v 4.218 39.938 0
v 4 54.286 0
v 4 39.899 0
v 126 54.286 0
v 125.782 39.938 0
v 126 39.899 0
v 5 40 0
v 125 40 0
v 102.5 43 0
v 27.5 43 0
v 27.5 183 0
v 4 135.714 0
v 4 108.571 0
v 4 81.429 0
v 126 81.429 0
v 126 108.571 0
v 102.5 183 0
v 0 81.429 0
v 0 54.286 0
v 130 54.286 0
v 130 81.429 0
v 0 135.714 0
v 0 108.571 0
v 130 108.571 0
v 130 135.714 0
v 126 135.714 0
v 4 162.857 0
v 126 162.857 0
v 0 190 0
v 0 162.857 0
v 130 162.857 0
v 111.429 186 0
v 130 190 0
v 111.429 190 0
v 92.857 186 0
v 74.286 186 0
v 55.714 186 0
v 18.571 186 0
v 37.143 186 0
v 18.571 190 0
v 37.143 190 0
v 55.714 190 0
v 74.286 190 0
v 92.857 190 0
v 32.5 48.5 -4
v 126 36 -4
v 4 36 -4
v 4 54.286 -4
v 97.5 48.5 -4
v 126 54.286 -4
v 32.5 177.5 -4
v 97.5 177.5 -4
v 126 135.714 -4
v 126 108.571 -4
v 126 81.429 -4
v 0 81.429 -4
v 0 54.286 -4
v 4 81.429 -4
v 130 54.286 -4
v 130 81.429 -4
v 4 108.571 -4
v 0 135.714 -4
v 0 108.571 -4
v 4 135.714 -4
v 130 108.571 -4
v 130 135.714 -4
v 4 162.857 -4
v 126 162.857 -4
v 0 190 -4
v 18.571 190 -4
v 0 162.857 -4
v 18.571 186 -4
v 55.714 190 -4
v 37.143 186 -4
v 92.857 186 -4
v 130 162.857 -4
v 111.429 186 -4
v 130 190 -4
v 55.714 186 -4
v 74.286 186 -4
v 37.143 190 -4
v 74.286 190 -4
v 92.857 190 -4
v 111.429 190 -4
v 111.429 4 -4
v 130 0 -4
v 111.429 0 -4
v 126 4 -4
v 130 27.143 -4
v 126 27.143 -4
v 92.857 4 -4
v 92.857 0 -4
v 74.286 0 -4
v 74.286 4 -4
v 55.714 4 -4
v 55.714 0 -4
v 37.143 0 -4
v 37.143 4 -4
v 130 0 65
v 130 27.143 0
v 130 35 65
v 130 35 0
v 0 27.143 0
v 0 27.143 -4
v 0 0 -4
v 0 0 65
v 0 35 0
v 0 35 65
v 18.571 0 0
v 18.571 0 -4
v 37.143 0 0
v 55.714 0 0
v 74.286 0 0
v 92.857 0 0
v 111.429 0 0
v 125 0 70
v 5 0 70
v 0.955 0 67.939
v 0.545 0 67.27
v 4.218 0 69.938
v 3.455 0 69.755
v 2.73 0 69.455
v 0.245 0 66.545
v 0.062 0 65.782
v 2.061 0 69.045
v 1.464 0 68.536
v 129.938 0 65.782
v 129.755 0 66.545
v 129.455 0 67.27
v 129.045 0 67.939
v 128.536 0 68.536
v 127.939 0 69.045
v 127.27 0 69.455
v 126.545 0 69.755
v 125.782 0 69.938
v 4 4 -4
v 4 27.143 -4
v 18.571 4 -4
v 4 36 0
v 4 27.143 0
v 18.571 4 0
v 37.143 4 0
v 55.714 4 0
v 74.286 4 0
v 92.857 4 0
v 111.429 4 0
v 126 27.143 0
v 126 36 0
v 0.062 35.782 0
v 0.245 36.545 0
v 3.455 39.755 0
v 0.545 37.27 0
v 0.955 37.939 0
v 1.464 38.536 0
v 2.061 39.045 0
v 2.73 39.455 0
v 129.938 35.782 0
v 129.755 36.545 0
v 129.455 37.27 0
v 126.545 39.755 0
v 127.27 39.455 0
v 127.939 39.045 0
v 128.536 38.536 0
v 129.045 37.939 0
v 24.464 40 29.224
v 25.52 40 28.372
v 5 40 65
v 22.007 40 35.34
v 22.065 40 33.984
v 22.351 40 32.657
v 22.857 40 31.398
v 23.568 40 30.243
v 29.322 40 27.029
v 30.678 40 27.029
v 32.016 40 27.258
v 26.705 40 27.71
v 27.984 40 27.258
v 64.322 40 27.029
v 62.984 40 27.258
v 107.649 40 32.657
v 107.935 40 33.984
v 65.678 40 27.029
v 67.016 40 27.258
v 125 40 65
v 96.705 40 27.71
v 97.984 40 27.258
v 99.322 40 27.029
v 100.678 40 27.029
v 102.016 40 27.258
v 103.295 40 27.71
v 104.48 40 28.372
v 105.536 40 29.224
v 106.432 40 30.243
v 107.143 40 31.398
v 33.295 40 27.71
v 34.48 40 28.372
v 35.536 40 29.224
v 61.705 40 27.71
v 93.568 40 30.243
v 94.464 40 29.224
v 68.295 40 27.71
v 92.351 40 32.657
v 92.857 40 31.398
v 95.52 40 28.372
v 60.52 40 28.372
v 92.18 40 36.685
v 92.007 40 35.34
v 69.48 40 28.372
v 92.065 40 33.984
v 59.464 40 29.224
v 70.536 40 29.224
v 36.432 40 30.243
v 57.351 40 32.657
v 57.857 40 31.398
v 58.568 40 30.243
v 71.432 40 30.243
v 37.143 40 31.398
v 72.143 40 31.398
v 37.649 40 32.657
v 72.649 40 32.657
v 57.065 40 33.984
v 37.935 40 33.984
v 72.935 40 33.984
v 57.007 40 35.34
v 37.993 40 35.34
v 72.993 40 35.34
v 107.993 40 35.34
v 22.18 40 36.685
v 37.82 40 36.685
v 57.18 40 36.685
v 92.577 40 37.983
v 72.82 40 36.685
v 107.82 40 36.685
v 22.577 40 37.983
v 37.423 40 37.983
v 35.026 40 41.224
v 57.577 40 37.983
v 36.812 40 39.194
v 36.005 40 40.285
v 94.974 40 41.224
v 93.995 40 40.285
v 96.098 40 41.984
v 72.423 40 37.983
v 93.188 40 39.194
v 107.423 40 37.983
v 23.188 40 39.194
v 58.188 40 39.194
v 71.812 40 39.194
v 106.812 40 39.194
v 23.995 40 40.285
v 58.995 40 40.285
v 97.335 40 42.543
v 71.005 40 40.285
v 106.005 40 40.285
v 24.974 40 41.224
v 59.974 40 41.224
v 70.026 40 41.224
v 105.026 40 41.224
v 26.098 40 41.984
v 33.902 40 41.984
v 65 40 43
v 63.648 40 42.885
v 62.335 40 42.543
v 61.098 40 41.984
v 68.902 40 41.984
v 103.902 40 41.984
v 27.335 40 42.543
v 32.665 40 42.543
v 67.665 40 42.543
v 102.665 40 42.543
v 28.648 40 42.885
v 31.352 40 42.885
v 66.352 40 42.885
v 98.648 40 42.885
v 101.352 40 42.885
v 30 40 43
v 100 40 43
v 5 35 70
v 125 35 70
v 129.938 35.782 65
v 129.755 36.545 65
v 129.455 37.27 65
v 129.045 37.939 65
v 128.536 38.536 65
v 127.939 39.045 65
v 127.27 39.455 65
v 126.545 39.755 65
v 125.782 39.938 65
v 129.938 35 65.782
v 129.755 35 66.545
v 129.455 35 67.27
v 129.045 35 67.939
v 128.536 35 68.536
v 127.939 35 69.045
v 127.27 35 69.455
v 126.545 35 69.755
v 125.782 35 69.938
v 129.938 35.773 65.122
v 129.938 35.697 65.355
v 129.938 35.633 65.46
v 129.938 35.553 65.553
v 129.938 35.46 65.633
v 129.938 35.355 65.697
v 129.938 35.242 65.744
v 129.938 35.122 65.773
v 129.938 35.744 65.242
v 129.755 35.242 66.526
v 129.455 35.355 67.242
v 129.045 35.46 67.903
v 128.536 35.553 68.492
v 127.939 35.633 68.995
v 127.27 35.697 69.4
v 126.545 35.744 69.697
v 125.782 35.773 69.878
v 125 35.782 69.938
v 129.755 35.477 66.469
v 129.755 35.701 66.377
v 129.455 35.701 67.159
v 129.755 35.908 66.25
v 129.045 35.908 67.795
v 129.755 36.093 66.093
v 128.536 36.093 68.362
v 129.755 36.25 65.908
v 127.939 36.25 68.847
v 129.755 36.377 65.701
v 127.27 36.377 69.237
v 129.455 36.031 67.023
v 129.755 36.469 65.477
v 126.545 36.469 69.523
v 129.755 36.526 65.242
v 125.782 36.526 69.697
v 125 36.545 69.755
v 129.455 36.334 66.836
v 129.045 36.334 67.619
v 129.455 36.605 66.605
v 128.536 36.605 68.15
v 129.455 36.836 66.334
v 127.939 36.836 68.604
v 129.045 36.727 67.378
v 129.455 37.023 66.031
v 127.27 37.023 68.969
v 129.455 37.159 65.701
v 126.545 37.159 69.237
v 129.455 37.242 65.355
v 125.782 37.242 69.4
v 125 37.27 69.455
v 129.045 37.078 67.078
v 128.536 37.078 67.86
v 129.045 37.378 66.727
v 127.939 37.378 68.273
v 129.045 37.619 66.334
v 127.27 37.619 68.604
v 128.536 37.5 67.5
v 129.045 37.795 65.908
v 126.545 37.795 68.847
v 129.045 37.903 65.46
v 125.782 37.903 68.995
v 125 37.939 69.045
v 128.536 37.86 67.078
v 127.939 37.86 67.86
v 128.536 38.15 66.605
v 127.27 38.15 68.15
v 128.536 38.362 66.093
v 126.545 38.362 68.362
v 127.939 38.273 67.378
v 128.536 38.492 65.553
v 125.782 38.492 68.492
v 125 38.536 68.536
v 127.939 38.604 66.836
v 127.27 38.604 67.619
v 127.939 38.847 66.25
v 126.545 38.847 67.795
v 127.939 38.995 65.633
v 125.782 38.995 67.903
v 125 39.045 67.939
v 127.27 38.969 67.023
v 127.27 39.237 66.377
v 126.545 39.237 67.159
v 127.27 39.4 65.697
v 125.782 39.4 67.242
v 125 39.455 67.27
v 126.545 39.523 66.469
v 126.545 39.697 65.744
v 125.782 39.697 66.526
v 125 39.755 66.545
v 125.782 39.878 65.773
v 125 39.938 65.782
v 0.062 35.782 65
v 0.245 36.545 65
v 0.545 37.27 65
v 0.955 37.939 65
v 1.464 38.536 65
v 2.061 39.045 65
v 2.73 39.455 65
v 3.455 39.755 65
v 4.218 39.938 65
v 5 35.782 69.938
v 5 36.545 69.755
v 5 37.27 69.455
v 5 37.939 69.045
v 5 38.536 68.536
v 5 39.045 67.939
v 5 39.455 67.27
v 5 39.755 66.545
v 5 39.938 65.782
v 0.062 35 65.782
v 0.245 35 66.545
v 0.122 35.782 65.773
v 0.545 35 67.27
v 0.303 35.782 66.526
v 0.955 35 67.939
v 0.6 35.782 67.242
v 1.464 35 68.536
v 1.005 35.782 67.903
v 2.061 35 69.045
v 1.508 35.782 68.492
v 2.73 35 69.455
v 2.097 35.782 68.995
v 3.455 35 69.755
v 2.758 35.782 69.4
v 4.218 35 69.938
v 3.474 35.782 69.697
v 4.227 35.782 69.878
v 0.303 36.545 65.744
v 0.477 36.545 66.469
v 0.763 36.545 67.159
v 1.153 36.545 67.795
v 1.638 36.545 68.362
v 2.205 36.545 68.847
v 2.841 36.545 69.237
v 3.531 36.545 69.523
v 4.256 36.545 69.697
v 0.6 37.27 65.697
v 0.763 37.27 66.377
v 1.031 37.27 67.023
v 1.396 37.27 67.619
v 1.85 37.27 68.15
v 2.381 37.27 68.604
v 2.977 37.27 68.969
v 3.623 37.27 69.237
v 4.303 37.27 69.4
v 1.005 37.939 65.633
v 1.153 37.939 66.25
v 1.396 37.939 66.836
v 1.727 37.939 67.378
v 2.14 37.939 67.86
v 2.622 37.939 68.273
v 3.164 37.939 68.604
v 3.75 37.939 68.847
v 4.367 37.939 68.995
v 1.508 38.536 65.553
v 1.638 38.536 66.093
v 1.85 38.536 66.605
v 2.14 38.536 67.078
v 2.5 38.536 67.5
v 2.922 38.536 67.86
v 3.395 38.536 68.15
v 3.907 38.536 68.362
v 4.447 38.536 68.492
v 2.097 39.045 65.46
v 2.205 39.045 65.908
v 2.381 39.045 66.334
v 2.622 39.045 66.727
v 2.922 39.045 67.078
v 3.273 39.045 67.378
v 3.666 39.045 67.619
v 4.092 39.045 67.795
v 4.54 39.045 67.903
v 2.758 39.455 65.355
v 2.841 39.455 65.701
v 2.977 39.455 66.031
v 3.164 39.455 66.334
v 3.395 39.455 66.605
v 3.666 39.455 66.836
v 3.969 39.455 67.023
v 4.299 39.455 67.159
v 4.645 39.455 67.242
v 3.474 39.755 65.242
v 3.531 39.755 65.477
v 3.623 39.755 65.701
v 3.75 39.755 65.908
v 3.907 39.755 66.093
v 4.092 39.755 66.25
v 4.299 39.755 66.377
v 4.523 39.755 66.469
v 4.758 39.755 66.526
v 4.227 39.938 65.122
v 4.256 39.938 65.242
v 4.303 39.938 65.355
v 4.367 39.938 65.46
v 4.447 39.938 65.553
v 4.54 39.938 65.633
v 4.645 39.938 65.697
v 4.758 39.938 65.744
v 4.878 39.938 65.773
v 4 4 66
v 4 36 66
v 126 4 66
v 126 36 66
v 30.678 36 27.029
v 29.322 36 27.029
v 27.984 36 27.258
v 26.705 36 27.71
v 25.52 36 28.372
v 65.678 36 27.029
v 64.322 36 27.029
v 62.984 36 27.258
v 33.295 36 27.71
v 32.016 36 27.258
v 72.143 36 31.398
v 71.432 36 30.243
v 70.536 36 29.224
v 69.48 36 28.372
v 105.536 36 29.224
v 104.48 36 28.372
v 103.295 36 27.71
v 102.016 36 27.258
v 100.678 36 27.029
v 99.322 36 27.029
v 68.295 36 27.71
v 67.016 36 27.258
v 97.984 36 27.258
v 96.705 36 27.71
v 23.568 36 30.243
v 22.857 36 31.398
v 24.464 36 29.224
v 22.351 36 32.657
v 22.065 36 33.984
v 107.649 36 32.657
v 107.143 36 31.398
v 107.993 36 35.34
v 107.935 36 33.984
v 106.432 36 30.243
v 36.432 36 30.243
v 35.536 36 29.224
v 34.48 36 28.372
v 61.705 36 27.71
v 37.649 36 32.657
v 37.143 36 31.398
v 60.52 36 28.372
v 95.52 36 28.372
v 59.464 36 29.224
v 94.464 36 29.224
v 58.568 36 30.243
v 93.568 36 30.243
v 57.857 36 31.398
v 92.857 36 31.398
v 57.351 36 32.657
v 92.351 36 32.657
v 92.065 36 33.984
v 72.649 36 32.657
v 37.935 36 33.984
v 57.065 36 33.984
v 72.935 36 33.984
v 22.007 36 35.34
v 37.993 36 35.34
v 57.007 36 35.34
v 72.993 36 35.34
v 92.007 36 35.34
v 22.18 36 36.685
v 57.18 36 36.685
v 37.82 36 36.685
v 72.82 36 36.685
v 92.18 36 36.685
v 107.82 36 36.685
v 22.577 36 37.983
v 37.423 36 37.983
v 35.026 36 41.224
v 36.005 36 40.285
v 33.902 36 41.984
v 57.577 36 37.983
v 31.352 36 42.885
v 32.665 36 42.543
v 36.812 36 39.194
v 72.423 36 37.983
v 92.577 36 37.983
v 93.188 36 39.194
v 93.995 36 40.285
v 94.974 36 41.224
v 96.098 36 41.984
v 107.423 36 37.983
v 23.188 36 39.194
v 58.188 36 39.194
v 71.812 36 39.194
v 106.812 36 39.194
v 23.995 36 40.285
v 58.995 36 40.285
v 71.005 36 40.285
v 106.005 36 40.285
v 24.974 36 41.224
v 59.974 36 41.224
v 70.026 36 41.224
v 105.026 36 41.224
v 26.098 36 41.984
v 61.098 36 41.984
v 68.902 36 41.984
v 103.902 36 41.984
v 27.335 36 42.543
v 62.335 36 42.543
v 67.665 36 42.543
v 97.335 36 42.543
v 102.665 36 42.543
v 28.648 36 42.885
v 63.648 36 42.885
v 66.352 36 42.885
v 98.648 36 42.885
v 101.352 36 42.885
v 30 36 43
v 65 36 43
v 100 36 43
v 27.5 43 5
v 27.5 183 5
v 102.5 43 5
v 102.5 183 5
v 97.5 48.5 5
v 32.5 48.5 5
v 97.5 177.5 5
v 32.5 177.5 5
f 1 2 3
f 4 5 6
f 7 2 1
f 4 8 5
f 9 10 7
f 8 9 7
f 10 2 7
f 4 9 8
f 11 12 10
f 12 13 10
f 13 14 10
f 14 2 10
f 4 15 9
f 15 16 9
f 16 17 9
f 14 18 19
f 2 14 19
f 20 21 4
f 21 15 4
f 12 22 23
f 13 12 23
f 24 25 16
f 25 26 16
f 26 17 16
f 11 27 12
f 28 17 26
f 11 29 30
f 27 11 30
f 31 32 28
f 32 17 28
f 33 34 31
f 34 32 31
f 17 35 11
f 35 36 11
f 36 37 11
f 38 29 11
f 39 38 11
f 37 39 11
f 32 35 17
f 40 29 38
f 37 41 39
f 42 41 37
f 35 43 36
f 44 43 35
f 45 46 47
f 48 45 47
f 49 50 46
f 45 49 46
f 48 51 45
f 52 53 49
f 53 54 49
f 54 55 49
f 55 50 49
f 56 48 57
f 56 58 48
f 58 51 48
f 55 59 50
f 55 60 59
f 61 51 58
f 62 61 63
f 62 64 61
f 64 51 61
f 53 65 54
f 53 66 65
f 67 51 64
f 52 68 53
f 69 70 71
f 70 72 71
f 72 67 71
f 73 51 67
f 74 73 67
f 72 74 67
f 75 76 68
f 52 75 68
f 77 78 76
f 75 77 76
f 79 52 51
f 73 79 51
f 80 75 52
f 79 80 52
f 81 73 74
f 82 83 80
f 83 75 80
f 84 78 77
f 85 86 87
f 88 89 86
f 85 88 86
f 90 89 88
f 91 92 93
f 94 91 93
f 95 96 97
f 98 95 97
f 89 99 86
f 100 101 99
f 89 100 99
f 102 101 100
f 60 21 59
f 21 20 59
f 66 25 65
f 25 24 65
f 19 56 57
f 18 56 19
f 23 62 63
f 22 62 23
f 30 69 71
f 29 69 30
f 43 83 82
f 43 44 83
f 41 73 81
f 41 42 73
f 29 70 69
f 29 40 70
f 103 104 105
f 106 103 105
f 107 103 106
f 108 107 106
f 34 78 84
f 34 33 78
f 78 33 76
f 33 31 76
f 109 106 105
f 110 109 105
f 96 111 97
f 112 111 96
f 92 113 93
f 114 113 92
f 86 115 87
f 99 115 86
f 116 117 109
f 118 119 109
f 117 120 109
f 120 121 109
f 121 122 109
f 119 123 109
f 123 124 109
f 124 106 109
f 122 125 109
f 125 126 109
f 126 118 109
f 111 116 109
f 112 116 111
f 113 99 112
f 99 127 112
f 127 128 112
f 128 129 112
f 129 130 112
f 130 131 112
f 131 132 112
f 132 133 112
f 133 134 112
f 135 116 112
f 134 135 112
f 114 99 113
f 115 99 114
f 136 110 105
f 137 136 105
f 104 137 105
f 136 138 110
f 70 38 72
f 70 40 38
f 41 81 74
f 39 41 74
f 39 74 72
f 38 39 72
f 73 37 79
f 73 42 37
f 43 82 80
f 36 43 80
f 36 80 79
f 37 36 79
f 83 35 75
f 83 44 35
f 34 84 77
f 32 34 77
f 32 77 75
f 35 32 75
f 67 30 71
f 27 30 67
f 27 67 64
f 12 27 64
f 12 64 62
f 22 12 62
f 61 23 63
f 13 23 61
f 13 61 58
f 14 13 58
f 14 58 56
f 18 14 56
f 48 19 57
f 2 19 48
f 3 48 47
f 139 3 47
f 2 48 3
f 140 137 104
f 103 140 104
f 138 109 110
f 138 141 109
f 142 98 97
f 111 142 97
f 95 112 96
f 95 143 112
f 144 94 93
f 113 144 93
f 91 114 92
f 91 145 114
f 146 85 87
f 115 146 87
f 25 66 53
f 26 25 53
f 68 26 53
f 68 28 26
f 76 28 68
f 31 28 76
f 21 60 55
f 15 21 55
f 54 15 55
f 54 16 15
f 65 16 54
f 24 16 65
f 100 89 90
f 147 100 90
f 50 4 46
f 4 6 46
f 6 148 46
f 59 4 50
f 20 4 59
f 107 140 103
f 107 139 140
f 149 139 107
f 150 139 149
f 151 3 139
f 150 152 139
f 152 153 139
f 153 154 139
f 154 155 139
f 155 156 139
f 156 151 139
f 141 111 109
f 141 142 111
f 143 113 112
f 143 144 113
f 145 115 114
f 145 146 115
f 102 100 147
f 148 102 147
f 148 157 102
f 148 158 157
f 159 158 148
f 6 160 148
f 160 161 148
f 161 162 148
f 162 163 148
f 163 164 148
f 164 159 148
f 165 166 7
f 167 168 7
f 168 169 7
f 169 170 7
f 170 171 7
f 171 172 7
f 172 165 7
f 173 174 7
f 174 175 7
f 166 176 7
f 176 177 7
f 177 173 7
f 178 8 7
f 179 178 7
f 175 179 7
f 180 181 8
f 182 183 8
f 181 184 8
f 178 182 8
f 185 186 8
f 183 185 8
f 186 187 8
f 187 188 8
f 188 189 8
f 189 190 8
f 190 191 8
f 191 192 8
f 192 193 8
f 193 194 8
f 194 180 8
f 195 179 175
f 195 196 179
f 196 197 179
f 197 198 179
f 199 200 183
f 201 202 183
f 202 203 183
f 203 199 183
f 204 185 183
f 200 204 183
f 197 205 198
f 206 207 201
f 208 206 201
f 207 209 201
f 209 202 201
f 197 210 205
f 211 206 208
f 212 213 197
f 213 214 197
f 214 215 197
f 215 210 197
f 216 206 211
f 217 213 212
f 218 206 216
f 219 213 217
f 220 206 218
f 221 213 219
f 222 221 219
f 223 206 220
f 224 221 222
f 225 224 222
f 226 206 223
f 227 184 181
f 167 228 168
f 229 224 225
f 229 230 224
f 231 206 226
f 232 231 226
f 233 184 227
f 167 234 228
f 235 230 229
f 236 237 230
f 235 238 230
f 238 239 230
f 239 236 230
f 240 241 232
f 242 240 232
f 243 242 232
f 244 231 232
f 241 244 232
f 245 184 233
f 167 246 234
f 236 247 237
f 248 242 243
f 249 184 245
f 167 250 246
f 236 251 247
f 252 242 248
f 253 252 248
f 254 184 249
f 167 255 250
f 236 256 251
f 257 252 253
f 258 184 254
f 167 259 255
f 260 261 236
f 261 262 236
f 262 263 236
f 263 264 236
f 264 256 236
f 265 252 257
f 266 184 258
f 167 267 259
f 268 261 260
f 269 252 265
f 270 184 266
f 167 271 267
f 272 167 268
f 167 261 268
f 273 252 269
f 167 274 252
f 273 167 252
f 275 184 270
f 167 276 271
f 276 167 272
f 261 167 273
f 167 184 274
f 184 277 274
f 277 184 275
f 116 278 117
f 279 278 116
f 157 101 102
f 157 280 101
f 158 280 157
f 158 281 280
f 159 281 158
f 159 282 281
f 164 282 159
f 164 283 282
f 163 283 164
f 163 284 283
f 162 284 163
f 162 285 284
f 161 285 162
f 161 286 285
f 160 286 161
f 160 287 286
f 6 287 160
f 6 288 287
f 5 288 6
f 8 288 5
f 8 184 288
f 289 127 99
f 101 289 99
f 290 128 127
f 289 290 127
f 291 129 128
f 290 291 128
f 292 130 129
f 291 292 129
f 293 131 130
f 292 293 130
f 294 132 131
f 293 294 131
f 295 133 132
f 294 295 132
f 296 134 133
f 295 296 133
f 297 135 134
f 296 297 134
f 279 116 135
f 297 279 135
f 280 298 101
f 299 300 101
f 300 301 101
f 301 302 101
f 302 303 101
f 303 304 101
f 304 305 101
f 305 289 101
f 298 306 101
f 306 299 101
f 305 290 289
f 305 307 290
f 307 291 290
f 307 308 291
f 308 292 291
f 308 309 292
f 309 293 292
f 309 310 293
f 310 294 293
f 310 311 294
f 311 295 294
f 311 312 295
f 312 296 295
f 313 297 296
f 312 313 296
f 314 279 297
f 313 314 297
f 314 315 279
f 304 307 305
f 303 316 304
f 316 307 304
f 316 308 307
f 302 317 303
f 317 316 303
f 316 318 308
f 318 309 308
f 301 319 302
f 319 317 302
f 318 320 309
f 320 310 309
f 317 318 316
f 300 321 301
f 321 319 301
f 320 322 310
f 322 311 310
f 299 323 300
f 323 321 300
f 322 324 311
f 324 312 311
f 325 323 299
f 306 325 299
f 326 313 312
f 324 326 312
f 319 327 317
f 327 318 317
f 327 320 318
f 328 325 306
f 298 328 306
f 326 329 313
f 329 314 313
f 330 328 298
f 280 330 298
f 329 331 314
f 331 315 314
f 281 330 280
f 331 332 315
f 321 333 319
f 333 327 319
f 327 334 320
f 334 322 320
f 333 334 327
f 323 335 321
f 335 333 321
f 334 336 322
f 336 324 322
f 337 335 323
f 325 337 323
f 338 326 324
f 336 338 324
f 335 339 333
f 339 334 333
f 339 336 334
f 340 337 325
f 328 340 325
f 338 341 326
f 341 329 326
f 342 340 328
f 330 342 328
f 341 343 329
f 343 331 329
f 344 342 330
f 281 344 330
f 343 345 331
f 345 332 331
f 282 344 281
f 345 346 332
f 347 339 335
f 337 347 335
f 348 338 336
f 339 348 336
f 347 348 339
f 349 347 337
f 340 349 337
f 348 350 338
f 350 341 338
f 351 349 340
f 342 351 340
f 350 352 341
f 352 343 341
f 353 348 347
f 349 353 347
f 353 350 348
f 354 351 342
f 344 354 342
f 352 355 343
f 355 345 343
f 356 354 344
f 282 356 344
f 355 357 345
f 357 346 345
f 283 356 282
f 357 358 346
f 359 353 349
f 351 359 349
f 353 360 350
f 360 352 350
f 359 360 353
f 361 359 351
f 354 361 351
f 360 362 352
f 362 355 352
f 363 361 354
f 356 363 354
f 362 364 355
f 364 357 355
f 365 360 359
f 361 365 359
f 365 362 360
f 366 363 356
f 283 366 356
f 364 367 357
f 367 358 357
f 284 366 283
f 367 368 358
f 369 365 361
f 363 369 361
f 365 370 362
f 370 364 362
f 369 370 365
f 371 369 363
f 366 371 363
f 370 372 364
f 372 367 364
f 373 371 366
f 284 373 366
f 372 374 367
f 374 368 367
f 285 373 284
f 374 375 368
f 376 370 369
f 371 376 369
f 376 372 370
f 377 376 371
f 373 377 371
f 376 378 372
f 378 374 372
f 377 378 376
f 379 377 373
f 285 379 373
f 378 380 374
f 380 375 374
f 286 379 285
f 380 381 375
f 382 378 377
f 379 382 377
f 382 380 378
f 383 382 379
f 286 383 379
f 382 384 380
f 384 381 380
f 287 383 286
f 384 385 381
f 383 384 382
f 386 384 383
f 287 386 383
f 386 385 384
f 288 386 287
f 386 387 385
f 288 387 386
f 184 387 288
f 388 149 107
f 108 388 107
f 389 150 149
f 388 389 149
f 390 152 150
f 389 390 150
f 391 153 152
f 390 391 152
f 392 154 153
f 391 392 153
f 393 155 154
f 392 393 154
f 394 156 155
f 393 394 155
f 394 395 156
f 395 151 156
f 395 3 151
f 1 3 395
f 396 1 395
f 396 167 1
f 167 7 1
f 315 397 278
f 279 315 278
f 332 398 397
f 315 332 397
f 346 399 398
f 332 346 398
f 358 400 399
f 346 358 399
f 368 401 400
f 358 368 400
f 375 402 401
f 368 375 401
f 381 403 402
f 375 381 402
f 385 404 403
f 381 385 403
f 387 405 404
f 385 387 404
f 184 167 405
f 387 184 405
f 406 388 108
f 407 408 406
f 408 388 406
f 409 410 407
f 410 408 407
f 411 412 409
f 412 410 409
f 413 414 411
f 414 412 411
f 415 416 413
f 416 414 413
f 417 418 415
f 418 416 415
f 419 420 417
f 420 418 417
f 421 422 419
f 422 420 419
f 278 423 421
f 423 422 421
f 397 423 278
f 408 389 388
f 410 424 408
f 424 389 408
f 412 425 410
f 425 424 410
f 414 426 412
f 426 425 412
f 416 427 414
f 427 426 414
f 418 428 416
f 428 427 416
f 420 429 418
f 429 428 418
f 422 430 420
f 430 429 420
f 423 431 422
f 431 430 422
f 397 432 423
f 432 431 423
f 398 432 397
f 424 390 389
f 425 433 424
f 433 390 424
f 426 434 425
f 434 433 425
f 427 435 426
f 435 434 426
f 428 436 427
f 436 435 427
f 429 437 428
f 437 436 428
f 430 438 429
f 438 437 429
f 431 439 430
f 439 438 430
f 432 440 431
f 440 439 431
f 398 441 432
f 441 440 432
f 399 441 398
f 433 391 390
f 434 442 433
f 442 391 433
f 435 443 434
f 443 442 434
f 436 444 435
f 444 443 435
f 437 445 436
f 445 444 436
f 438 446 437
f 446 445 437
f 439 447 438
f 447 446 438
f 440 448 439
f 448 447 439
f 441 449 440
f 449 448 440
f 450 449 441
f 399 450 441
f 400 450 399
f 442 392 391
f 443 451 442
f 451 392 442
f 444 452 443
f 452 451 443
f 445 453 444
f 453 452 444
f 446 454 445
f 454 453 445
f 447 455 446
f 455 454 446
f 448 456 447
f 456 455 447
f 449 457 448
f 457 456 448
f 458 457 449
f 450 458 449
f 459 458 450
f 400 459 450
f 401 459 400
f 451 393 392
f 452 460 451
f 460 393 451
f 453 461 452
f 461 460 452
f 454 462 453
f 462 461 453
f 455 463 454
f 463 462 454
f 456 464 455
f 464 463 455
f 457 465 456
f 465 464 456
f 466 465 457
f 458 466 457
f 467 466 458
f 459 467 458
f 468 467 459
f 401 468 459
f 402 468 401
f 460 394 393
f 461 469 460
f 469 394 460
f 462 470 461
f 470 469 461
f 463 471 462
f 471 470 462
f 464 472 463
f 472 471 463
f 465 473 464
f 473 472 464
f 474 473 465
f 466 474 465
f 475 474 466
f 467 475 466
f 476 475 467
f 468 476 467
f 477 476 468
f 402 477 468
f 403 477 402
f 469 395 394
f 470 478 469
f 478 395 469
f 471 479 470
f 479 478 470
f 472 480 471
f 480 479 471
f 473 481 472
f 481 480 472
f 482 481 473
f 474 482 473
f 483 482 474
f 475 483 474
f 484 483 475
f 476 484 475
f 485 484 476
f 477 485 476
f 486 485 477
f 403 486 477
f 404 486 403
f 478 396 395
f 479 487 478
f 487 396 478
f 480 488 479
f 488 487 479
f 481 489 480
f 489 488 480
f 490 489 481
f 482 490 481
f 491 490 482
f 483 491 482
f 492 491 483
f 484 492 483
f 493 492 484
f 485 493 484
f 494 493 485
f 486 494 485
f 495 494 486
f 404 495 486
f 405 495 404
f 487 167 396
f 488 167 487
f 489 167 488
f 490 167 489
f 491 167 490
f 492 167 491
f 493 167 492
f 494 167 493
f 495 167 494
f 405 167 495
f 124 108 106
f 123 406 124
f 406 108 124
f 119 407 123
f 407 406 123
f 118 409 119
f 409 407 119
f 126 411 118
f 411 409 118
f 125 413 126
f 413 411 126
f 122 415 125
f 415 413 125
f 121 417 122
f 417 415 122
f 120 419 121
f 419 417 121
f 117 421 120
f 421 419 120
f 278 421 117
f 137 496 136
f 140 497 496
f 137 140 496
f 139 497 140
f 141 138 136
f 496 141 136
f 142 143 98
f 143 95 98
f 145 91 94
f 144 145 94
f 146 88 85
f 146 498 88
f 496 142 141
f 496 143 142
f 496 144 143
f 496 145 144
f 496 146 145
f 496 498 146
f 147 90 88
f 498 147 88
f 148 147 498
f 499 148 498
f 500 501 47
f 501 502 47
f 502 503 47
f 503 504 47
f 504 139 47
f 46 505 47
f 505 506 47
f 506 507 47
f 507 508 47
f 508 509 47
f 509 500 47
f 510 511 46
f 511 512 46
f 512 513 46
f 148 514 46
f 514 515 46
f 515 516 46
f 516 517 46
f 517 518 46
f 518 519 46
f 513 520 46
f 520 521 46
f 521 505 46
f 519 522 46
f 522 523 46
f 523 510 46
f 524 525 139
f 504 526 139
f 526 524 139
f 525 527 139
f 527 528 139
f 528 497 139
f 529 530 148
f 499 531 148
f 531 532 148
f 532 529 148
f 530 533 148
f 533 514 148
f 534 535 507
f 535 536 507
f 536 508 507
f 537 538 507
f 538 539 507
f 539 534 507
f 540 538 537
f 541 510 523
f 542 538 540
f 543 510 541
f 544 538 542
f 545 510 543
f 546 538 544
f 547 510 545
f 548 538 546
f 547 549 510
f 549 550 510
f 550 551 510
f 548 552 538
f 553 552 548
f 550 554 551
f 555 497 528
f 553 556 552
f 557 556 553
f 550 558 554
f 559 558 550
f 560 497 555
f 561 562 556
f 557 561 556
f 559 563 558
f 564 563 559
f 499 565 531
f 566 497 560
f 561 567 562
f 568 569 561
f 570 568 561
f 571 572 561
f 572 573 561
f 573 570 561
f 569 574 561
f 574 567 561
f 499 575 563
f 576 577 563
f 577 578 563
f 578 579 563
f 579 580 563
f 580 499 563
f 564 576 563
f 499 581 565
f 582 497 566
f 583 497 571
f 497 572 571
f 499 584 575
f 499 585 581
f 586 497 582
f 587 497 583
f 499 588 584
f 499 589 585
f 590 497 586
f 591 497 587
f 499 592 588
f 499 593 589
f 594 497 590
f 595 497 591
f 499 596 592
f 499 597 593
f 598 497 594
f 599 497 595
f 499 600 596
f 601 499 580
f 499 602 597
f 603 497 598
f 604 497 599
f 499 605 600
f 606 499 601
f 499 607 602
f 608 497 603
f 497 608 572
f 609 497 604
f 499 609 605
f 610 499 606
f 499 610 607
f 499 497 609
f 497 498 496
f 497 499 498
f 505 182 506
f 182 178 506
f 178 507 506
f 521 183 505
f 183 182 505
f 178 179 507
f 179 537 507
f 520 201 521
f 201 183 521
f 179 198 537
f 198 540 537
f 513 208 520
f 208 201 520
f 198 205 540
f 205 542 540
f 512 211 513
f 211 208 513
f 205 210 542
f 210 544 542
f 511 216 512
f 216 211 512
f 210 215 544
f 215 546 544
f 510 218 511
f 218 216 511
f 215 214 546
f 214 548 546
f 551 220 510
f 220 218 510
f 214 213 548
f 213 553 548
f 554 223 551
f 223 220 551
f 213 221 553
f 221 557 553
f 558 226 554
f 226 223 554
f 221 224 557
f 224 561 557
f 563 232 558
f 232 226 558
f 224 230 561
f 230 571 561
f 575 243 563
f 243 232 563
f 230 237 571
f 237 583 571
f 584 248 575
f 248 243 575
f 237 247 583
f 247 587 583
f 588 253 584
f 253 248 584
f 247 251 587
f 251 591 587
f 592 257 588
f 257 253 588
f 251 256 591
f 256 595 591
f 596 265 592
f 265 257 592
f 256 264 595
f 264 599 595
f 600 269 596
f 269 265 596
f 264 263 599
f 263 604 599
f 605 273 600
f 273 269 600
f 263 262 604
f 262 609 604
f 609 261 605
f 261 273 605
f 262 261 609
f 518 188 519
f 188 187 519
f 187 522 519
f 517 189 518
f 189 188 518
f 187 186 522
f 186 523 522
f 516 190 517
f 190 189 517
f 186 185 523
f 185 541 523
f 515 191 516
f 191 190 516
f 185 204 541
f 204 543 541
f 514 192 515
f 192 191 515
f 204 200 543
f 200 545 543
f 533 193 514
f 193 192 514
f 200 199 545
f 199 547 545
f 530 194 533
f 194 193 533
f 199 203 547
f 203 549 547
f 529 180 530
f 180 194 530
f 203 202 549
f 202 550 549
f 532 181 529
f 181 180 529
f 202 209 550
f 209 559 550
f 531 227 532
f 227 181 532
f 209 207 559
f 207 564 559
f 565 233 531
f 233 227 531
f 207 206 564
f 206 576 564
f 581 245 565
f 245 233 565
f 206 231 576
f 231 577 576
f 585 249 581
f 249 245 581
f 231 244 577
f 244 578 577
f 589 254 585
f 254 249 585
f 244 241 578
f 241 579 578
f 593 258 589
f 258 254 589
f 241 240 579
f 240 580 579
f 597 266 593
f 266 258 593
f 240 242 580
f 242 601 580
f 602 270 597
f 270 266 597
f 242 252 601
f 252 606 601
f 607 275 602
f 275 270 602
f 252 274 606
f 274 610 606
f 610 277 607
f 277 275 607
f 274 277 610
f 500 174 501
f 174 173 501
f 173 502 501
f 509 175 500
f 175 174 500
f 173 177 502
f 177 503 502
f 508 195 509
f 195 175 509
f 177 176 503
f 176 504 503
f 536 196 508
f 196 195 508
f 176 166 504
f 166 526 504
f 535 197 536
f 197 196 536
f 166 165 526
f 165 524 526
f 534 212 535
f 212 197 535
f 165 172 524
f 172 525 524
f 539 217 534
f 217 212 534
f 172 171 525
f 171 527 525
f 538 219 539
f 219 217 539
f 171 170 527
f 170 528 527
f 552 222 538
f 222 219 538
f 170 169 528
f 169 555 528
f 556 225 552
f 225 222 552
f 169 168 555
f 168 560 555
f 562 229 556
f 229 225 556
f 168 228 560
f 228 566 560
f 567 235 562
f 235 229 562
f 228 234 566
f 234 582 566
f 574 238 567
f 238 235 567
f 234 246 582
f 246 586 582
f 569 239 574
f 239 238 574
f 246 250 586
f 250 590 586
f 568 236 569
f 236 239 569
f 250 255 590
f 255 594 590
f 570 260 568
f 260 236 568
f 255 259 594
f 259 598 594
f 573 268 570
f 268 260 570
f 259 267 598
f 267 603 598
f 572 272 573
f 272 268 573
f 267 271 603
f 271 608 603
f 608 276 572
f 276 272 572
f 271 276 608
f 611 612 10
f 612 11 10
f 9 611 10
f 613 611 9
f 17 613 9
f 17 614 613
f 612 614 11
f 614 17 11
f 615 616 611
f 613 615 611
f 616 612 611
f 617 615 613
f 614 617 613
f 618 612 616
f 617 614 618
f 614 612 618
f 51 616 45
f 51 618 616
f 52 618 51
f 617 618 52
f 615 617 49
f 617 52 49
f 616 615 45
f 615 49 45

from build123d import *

# Parameters (mm, degrees)
BUITENAFMETING_RECHTHOEK_W  = 130
BUITENAFMETING_RECHTHOEK_H  = 190
PLAAT_DEPTH                 = 4
TAND_HOR_W                  = 18.571428572
TAND_HOR_H                  = 4
TAND_BOVEN_DEPTH            = 231.252035822
TANDEN_PATROON_BOVEN_COUNT  = 3
TANDEN_PATROON_BOVEN_PITCH  = 37.142857143
TAND_VER_W                  = 4
TAND_VER_H                  = 27.142857143
TAND_LINKS_DEPTH            = 231.252035822
TANDEN_PATROON_LINKS_COUNT  = 3
TANDEN_PATROON_LINKS_PITCH  = 54.285714286
TAND_O_W                    = 18.571428572
TAND_O_H                    = 4
TAND_ONDER_DEPTH            = 231.252035822
TANDEN_PATROON_ONDER_COUNT  = 3
TANDEN_PATROON_ONDER_PITCH  = 37.142857143
TAND_R_W                    = 4
TAND_R_H                    = 27.142857143
TAND_RECHTS_DEPTH           = 231.252035822
TANDEN_PATROON_RECHTS_COUNT = 3
TANDEN_PATROON_RECHTS_PITCH = 54.285714286
SKETCH1_W                   = 130
SKETCH1_H                   = 40
BOSS_EXTRUDE1_DEPTH         = 70
FILLET1_R                   = 5
CUT_EXTRUDE1_DEPTH          = 70
SKETCH4_R                   = 8
CUT_EXTRUDE2_DEPTH          = 27
SKETCH5_W                   = 75
SKETCH5_H                   = 140
BOSS_EXTRUDE2_DEPTH         = 5
SKETCH6_W                   = 65
SKETCH6_H                   = 129
CUT_EXTRUDE3_DEPTH          = 30


with BuildPart() as part:
    # Buitenafmeting Rechthoek → Plaat (new body)
    with BuildSketch(Plane.XY):
        with Locations((65, 95)):
            Rectangle(BUITENAFMETING_RECHTHOEK_W, BUITENAFMETING_RECHTHOEK_H)
    extrude(amount=-PLAAT_DEPTH)

    # Tand Hor → Tand Boven (cut, through all)
    with BuildSketch(Plane.XY):
        with Locations((27.857142857, 188)):
            Rectangle(TAND_HOR_W, TAND_HOR_H)
    tand_boven = extrude(amount=-TAND_BOVEN_DEPTH, mode=Mode.SUBTRACT)

    # Tanden Patroon Boven: Tand Boven ×3
    with Locations(*[(i * TANDEN_PATROON_BOVEN_PITCH, 0, 0) for i in range(1, TANDEN_PATROON_BOVEN_COUNT)]):
        add(tand_boven, mode=Mode.SUBTRACT)

    # Tand Ver → Tand Links (cut, through all)
    with BuildSketch(Plane.XY):
        with Locations((2, 149.285714286)):
            Rectangle(TAND_VER_W, TAND_VER_H)
    tand_links = extrude(amount=-TAND_LINKS_DEPTH, mode=Mode.SUBTRACT)

    # Tanden Patroon Links: Tand Links ×3
    with Locations(*[(0, -i * TANDEN_PATROON_LINKS_PITCH, 0) for i in range(1, TANDEN_PATROON_LINKS_COUNT)]):
        add(tand_links, mode=Mode.SUBTRACT)

    # Tand O → Tand Onder (cut, through all)
    with BuildSketch(Plane.XY):
        with Locations((27.857142857, 2)):
            Rectangle(TAND_O_W, TAND_O_H)
    tand_onder = extrude(amount=-TAND_ONDER_DEPTH, mode=Mode.SUBTRACT)

    # Tanden Patroon Onder: Tand Onder ×3
    with Locations(*[(i * TANDEN_PATROON_ONDER_PITCH, 0, 0) for i in range(1, TANDEN_PATROON_ONDER_COUNT)]):
        add(tand_onder, mode=Mode.SUBTRACT)

    # Tand R → Tand Rechts (cut, through all)
    with BuildSketch(Plane.XY):
        with Locations((128, 149.285714286)):
            Rectangle(TAND_R_W, TAND_R_H)
    tand_rechts = extrude(amount=-TAND_RECHTS_DEPTH, mode=Mode.SUBTRACT)

    # Tanden Patroon Rechts: Tand Rechts ×3
    with Locations(*[(0, -i * TANDEN_PATROON_RECHTS_PITCH, 0) for i in range(1, TANDEN_PATROON_RECHTS_COUNT)]):
        add(tand_rechts, mode=Mode.SUBTRACT)

    # Sketch1 → Boss-Extrude1 (add)
    with BuildSketch(Plane.XY):
        with Locations((65, 20)):
            Rectangle(SKETCH1_W, SKETCH1_H)
    extrude(amount=BOSS_EXTRUDE1_DEPTH)

    # Fillet1
    # the kernel refuses this fillet: 5 mm, written as the material it takes off along each edge
    with BuildSketch(Plane(origin=(5, 35, 65), x_dir=(0, 1, 0), z_dir=(-1, 0, 0))) as fillet1_piece_1_section:
        Polygon((0, 0), (FILLET1_R * 1.02, 0), (FILLET1_R * 1.02, -FILLET1_R * 1.02), (0, -FILLET1_R * 1.02), align=None)
    fillet1_piece_1 = extrude(amount=FILLET1_R * 1.02, mode=Mode.PRIVATE)
    fillet1_piece_1 = fillet1_piece_1 - Plane(origin=(5, 35, 65), x_dir=(0, -0.7071067811865475, -0.7071067811865475), z_dir=(-1, 0, 0)) * Sphere(FILLET1_R, mode=Mode.PRIVATE)
    add(fillet1_piece_1, mode=Mode.SUBTRACT)
    with BuildSketch(Plane(origin=(125, 35, 65), x_dir=(0, 0, 1), z_dir=(0, 1, 0))) as fillet1_piece_2_section:
        Polygon((0, 0), (FILLET1_R * 1.02, 0), (FILLET1_R * 1.02, FILLET1_R * 1.02), (0, FILLET1_R * 1.02), align=None)
    fillet1_piece_2 = extrude(amount=FILLET1_R * 1.02, mode=Mode.PRIVATE)
    fillet1_piece_2 = fillet1_piece_2 - Plane(origin=(125, 35, 65), x_dir=(-0.7071067811865475, 0, -0.7071067811865475), z_dir=(0, 1, 0)) * Sphere(FILLET1_R, mode=Mode.PRIVATE)
    add(fillet1_piece_2, mode=Mode.SUBTRACT)
    with BuildSketch(Plane(origin=(0, 40, 0), x_dir=(0, -1, 0), z_dir=(0, 0, 1)), Plane(origin=(130, 40, 0), x_dir=(-1, 0, 0), z_dir=(0, 0, 1))) as fillet1_piece_3:
        with BuildLine():
            CenterArc((FILLET1_R, FILLET1_R), FILLET1_R, 180, 90)
            Line((0, FILLET1_R), (0, 0))
            Line((0, 0), (FILLET1_R, 0))
        make_face()
    extrude(amount=65, mode=Mode.SUBTRACT)
    with BuildSketch(Plane(origin=(0, 35, 70), x_dir=(0, 0, -1), z_dir=(0, -1, 0))) as fillet1_piece_4:
        with BuildLine():
            CenterArc((FILLET1_R, FILLET1_R), FILLET1_R, 180, 90)
            Line((0, FILLET1_R), (0, 0))
            Line((0, 0), (FILLET1_R, 0))
        make_face()
    extrude(amount=47.5, mode=Mode.SUBTRACT)
    with BuildSketch(Plane(origin=(130, -12.5, 70), x_dir=(-1, 0, 0), z_dir=(0, 1, 0))) as fillet1_piece_5:
        with BuildLine():
            CenterArc((FILLET1_R, -FILLET1_R), FILLET1_R, 90, 90)
            Line((0, -FILLET1_R), (0, 0))
            Line((0, 0), (FILLET1_R, 0))
        make_face()
    extrude(amount=47.5, mode=Mode.SUBTRACT)
    with BuildSketch(Plane(origin=(125, 40, 70), x_dir=(0, 0, -1), z_dir=(-1, 0, 0))) as fillet1_piece_6:
        with BuildLine():
            CenterArc((FILLET1_R, FILLET1_R), FILLET1_R, 180, 90)
            Line((0, FILLET1_R), (0, 0))
            Line((0, 0), (FILLET1_R, 0))
        make_face()
    extrude(amount=120, mode=Mode.SUBTRACT)

    # Sketch2 → Cut-Extrude1 (cut)
    with BuildSketch(Plane(origin=(0, 0, -4), x_dir=(-1, 0, 0), z_dir=(0, 0, -1))):
        Polygon((-92.857142857, 4), (-4, 4), (-4, 36), (-92.857142857, 36), (-126, 36), (-126, 4), align=None)
    extrude(amount=-CUT_EXTRUDE1_DEPTH, mode=Mode.SUBTRACT)

    # Sketch4 → Cut-Extrude2 (cut)
    with BuildSketch(Plane(origin=(0, 40, 0), x_dir=(1, 0, 0), z_dir=(0, 1, 0))):
        with Locations(Location((65, -35, 0), (0, 0, 270))):
            Circle(SKETCH4_R)
        with Locations(Location((100, -35, 0), (0, 0, 270))):
            Circle(SKETCH4_R)
        with Locations(Location((30, -35, 0), (0, 0, 270))):
            Circle(SKETCH4_R)
    extrude(amount=-CUT_EXTRUDE2_DEPTH, mode=Mode.SUBTRACT)

    # Sketch5 → Boss-Extrude2 (add)
    with BuildSketch(Plane.XY):
        with Locations((65, 113)):
            Rectangle(SKETCH5_W, SKETCH5_H)
    extrude(amount=BOSS_EXTRUDE2_DEPTH)

    # Sketch6 → Cut-Extrude3 (cut)
    with BuildSketch(Plane.XY.offset(5)):
        with Locations((65, 113)):
            Rectangle(SKETCH6_W, SKETCH6_H)
    extrude(amount=-CUT_EXTRUDE3_DEPTH, mode=Mode.SUBTRACT)


solid = part.part
